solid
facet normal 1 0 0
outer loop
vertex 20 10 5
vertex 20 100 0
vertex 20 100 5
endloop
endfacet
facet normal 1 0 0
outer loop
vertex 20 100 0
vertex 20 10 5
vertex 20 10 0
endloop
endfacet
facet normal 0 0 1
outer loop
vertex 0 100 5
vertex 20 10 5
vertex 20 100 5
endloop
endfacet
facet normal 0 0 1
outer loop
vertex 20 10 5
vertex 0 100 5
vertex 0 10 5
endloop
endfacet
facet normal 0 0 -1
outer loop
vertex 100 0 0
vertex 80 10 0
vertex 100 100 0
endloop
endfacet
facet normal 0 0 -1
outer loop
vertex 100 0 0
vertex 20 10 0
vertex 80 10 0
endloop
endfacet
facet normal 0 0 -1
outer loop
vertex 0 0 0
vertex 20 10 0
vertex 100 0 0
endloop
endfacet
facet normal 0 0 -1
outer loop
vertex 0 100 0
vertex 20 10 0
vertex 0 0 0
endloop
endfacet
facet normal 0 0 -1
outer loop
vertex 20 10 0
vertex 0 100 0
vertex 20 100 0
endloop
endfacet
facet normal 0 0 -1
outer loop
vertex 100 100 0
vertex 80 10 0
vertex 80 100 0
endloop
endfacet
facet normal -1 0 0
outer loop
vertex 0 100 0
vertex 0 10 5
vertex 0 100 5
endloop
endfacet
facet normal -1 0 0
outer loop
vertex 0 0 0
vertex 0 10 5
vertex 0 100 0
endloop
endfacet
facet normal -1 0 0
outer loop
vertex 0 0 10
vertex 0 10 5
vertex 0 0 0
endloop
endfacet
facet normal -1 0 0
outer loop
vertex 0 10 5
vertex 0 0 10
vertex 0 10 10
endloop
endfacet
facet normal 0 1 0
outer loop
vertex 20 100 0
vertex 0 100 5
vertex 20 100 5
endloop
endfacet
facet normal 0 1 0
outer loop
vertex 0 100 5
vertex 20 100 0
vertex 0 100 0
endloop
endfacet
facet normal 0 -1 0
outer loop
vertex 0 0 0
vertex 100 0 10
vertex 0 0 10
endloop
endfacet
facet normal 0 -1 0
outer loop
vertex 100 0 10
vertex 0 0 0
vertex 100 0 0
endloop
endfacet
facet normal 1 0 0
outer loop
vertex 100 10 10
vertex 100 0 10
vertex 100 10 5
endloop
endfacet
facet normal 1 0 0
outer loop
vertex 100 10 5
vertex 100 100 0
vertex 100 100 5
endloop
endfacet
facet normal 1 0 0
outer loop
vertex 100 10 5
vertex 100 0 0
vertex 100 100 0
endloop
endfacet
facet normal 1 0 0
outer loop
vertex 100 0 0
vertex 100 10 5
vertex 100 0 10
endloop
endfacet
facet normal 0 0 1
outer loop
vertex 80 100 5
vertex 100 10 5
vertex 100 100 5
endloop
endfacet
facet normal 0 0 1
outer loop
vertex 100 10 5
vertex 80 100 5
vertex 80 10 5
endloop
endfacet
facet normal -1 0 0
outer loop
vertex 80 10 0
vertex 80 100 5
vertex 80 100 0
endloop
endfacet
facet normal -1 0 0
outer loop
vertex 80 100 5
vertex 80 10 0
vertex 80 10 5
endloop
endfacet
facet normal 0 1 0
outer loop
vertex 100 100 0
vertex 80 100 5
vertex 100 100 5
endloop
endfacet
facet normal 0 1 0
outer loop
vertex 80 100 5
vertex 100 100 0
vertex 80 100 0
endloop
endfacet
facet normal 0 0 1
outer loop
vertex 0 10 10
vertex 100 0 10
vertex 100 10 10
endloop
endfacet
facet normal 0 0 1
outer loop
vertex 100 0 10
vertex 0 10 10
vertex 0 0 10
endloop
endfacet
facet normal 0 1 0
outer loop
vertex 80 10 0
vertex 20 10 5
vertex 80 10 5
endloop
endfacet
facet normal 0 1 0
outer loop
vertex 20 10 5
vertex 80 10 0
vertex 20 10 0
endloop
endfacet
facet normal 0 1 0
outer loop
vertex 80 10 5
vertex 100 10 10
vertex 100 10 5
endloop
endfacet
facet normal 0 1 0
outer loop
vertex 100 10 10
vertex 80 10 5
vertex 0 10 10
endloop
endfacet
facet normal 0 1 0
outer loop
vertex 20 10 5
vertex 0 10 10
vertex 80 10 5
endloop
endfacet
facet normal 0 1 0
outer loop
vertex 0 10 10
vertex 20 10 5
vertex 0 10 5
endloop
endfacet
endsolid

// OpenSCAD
module jig() {
    t_height = 5;
    t_offset = 100;
    t_width = 100;
    
    t_leap = t_width / 5;
    
    
    cube([t_leap, t_offset, t_height]);
    translate([t_width - t_leap, 0, 0])
    {
        cube([t_leap, t_offset, t_height]);
    }
    cube([t_width, t_leap / 2, t_height * 2]);
}


jig();
